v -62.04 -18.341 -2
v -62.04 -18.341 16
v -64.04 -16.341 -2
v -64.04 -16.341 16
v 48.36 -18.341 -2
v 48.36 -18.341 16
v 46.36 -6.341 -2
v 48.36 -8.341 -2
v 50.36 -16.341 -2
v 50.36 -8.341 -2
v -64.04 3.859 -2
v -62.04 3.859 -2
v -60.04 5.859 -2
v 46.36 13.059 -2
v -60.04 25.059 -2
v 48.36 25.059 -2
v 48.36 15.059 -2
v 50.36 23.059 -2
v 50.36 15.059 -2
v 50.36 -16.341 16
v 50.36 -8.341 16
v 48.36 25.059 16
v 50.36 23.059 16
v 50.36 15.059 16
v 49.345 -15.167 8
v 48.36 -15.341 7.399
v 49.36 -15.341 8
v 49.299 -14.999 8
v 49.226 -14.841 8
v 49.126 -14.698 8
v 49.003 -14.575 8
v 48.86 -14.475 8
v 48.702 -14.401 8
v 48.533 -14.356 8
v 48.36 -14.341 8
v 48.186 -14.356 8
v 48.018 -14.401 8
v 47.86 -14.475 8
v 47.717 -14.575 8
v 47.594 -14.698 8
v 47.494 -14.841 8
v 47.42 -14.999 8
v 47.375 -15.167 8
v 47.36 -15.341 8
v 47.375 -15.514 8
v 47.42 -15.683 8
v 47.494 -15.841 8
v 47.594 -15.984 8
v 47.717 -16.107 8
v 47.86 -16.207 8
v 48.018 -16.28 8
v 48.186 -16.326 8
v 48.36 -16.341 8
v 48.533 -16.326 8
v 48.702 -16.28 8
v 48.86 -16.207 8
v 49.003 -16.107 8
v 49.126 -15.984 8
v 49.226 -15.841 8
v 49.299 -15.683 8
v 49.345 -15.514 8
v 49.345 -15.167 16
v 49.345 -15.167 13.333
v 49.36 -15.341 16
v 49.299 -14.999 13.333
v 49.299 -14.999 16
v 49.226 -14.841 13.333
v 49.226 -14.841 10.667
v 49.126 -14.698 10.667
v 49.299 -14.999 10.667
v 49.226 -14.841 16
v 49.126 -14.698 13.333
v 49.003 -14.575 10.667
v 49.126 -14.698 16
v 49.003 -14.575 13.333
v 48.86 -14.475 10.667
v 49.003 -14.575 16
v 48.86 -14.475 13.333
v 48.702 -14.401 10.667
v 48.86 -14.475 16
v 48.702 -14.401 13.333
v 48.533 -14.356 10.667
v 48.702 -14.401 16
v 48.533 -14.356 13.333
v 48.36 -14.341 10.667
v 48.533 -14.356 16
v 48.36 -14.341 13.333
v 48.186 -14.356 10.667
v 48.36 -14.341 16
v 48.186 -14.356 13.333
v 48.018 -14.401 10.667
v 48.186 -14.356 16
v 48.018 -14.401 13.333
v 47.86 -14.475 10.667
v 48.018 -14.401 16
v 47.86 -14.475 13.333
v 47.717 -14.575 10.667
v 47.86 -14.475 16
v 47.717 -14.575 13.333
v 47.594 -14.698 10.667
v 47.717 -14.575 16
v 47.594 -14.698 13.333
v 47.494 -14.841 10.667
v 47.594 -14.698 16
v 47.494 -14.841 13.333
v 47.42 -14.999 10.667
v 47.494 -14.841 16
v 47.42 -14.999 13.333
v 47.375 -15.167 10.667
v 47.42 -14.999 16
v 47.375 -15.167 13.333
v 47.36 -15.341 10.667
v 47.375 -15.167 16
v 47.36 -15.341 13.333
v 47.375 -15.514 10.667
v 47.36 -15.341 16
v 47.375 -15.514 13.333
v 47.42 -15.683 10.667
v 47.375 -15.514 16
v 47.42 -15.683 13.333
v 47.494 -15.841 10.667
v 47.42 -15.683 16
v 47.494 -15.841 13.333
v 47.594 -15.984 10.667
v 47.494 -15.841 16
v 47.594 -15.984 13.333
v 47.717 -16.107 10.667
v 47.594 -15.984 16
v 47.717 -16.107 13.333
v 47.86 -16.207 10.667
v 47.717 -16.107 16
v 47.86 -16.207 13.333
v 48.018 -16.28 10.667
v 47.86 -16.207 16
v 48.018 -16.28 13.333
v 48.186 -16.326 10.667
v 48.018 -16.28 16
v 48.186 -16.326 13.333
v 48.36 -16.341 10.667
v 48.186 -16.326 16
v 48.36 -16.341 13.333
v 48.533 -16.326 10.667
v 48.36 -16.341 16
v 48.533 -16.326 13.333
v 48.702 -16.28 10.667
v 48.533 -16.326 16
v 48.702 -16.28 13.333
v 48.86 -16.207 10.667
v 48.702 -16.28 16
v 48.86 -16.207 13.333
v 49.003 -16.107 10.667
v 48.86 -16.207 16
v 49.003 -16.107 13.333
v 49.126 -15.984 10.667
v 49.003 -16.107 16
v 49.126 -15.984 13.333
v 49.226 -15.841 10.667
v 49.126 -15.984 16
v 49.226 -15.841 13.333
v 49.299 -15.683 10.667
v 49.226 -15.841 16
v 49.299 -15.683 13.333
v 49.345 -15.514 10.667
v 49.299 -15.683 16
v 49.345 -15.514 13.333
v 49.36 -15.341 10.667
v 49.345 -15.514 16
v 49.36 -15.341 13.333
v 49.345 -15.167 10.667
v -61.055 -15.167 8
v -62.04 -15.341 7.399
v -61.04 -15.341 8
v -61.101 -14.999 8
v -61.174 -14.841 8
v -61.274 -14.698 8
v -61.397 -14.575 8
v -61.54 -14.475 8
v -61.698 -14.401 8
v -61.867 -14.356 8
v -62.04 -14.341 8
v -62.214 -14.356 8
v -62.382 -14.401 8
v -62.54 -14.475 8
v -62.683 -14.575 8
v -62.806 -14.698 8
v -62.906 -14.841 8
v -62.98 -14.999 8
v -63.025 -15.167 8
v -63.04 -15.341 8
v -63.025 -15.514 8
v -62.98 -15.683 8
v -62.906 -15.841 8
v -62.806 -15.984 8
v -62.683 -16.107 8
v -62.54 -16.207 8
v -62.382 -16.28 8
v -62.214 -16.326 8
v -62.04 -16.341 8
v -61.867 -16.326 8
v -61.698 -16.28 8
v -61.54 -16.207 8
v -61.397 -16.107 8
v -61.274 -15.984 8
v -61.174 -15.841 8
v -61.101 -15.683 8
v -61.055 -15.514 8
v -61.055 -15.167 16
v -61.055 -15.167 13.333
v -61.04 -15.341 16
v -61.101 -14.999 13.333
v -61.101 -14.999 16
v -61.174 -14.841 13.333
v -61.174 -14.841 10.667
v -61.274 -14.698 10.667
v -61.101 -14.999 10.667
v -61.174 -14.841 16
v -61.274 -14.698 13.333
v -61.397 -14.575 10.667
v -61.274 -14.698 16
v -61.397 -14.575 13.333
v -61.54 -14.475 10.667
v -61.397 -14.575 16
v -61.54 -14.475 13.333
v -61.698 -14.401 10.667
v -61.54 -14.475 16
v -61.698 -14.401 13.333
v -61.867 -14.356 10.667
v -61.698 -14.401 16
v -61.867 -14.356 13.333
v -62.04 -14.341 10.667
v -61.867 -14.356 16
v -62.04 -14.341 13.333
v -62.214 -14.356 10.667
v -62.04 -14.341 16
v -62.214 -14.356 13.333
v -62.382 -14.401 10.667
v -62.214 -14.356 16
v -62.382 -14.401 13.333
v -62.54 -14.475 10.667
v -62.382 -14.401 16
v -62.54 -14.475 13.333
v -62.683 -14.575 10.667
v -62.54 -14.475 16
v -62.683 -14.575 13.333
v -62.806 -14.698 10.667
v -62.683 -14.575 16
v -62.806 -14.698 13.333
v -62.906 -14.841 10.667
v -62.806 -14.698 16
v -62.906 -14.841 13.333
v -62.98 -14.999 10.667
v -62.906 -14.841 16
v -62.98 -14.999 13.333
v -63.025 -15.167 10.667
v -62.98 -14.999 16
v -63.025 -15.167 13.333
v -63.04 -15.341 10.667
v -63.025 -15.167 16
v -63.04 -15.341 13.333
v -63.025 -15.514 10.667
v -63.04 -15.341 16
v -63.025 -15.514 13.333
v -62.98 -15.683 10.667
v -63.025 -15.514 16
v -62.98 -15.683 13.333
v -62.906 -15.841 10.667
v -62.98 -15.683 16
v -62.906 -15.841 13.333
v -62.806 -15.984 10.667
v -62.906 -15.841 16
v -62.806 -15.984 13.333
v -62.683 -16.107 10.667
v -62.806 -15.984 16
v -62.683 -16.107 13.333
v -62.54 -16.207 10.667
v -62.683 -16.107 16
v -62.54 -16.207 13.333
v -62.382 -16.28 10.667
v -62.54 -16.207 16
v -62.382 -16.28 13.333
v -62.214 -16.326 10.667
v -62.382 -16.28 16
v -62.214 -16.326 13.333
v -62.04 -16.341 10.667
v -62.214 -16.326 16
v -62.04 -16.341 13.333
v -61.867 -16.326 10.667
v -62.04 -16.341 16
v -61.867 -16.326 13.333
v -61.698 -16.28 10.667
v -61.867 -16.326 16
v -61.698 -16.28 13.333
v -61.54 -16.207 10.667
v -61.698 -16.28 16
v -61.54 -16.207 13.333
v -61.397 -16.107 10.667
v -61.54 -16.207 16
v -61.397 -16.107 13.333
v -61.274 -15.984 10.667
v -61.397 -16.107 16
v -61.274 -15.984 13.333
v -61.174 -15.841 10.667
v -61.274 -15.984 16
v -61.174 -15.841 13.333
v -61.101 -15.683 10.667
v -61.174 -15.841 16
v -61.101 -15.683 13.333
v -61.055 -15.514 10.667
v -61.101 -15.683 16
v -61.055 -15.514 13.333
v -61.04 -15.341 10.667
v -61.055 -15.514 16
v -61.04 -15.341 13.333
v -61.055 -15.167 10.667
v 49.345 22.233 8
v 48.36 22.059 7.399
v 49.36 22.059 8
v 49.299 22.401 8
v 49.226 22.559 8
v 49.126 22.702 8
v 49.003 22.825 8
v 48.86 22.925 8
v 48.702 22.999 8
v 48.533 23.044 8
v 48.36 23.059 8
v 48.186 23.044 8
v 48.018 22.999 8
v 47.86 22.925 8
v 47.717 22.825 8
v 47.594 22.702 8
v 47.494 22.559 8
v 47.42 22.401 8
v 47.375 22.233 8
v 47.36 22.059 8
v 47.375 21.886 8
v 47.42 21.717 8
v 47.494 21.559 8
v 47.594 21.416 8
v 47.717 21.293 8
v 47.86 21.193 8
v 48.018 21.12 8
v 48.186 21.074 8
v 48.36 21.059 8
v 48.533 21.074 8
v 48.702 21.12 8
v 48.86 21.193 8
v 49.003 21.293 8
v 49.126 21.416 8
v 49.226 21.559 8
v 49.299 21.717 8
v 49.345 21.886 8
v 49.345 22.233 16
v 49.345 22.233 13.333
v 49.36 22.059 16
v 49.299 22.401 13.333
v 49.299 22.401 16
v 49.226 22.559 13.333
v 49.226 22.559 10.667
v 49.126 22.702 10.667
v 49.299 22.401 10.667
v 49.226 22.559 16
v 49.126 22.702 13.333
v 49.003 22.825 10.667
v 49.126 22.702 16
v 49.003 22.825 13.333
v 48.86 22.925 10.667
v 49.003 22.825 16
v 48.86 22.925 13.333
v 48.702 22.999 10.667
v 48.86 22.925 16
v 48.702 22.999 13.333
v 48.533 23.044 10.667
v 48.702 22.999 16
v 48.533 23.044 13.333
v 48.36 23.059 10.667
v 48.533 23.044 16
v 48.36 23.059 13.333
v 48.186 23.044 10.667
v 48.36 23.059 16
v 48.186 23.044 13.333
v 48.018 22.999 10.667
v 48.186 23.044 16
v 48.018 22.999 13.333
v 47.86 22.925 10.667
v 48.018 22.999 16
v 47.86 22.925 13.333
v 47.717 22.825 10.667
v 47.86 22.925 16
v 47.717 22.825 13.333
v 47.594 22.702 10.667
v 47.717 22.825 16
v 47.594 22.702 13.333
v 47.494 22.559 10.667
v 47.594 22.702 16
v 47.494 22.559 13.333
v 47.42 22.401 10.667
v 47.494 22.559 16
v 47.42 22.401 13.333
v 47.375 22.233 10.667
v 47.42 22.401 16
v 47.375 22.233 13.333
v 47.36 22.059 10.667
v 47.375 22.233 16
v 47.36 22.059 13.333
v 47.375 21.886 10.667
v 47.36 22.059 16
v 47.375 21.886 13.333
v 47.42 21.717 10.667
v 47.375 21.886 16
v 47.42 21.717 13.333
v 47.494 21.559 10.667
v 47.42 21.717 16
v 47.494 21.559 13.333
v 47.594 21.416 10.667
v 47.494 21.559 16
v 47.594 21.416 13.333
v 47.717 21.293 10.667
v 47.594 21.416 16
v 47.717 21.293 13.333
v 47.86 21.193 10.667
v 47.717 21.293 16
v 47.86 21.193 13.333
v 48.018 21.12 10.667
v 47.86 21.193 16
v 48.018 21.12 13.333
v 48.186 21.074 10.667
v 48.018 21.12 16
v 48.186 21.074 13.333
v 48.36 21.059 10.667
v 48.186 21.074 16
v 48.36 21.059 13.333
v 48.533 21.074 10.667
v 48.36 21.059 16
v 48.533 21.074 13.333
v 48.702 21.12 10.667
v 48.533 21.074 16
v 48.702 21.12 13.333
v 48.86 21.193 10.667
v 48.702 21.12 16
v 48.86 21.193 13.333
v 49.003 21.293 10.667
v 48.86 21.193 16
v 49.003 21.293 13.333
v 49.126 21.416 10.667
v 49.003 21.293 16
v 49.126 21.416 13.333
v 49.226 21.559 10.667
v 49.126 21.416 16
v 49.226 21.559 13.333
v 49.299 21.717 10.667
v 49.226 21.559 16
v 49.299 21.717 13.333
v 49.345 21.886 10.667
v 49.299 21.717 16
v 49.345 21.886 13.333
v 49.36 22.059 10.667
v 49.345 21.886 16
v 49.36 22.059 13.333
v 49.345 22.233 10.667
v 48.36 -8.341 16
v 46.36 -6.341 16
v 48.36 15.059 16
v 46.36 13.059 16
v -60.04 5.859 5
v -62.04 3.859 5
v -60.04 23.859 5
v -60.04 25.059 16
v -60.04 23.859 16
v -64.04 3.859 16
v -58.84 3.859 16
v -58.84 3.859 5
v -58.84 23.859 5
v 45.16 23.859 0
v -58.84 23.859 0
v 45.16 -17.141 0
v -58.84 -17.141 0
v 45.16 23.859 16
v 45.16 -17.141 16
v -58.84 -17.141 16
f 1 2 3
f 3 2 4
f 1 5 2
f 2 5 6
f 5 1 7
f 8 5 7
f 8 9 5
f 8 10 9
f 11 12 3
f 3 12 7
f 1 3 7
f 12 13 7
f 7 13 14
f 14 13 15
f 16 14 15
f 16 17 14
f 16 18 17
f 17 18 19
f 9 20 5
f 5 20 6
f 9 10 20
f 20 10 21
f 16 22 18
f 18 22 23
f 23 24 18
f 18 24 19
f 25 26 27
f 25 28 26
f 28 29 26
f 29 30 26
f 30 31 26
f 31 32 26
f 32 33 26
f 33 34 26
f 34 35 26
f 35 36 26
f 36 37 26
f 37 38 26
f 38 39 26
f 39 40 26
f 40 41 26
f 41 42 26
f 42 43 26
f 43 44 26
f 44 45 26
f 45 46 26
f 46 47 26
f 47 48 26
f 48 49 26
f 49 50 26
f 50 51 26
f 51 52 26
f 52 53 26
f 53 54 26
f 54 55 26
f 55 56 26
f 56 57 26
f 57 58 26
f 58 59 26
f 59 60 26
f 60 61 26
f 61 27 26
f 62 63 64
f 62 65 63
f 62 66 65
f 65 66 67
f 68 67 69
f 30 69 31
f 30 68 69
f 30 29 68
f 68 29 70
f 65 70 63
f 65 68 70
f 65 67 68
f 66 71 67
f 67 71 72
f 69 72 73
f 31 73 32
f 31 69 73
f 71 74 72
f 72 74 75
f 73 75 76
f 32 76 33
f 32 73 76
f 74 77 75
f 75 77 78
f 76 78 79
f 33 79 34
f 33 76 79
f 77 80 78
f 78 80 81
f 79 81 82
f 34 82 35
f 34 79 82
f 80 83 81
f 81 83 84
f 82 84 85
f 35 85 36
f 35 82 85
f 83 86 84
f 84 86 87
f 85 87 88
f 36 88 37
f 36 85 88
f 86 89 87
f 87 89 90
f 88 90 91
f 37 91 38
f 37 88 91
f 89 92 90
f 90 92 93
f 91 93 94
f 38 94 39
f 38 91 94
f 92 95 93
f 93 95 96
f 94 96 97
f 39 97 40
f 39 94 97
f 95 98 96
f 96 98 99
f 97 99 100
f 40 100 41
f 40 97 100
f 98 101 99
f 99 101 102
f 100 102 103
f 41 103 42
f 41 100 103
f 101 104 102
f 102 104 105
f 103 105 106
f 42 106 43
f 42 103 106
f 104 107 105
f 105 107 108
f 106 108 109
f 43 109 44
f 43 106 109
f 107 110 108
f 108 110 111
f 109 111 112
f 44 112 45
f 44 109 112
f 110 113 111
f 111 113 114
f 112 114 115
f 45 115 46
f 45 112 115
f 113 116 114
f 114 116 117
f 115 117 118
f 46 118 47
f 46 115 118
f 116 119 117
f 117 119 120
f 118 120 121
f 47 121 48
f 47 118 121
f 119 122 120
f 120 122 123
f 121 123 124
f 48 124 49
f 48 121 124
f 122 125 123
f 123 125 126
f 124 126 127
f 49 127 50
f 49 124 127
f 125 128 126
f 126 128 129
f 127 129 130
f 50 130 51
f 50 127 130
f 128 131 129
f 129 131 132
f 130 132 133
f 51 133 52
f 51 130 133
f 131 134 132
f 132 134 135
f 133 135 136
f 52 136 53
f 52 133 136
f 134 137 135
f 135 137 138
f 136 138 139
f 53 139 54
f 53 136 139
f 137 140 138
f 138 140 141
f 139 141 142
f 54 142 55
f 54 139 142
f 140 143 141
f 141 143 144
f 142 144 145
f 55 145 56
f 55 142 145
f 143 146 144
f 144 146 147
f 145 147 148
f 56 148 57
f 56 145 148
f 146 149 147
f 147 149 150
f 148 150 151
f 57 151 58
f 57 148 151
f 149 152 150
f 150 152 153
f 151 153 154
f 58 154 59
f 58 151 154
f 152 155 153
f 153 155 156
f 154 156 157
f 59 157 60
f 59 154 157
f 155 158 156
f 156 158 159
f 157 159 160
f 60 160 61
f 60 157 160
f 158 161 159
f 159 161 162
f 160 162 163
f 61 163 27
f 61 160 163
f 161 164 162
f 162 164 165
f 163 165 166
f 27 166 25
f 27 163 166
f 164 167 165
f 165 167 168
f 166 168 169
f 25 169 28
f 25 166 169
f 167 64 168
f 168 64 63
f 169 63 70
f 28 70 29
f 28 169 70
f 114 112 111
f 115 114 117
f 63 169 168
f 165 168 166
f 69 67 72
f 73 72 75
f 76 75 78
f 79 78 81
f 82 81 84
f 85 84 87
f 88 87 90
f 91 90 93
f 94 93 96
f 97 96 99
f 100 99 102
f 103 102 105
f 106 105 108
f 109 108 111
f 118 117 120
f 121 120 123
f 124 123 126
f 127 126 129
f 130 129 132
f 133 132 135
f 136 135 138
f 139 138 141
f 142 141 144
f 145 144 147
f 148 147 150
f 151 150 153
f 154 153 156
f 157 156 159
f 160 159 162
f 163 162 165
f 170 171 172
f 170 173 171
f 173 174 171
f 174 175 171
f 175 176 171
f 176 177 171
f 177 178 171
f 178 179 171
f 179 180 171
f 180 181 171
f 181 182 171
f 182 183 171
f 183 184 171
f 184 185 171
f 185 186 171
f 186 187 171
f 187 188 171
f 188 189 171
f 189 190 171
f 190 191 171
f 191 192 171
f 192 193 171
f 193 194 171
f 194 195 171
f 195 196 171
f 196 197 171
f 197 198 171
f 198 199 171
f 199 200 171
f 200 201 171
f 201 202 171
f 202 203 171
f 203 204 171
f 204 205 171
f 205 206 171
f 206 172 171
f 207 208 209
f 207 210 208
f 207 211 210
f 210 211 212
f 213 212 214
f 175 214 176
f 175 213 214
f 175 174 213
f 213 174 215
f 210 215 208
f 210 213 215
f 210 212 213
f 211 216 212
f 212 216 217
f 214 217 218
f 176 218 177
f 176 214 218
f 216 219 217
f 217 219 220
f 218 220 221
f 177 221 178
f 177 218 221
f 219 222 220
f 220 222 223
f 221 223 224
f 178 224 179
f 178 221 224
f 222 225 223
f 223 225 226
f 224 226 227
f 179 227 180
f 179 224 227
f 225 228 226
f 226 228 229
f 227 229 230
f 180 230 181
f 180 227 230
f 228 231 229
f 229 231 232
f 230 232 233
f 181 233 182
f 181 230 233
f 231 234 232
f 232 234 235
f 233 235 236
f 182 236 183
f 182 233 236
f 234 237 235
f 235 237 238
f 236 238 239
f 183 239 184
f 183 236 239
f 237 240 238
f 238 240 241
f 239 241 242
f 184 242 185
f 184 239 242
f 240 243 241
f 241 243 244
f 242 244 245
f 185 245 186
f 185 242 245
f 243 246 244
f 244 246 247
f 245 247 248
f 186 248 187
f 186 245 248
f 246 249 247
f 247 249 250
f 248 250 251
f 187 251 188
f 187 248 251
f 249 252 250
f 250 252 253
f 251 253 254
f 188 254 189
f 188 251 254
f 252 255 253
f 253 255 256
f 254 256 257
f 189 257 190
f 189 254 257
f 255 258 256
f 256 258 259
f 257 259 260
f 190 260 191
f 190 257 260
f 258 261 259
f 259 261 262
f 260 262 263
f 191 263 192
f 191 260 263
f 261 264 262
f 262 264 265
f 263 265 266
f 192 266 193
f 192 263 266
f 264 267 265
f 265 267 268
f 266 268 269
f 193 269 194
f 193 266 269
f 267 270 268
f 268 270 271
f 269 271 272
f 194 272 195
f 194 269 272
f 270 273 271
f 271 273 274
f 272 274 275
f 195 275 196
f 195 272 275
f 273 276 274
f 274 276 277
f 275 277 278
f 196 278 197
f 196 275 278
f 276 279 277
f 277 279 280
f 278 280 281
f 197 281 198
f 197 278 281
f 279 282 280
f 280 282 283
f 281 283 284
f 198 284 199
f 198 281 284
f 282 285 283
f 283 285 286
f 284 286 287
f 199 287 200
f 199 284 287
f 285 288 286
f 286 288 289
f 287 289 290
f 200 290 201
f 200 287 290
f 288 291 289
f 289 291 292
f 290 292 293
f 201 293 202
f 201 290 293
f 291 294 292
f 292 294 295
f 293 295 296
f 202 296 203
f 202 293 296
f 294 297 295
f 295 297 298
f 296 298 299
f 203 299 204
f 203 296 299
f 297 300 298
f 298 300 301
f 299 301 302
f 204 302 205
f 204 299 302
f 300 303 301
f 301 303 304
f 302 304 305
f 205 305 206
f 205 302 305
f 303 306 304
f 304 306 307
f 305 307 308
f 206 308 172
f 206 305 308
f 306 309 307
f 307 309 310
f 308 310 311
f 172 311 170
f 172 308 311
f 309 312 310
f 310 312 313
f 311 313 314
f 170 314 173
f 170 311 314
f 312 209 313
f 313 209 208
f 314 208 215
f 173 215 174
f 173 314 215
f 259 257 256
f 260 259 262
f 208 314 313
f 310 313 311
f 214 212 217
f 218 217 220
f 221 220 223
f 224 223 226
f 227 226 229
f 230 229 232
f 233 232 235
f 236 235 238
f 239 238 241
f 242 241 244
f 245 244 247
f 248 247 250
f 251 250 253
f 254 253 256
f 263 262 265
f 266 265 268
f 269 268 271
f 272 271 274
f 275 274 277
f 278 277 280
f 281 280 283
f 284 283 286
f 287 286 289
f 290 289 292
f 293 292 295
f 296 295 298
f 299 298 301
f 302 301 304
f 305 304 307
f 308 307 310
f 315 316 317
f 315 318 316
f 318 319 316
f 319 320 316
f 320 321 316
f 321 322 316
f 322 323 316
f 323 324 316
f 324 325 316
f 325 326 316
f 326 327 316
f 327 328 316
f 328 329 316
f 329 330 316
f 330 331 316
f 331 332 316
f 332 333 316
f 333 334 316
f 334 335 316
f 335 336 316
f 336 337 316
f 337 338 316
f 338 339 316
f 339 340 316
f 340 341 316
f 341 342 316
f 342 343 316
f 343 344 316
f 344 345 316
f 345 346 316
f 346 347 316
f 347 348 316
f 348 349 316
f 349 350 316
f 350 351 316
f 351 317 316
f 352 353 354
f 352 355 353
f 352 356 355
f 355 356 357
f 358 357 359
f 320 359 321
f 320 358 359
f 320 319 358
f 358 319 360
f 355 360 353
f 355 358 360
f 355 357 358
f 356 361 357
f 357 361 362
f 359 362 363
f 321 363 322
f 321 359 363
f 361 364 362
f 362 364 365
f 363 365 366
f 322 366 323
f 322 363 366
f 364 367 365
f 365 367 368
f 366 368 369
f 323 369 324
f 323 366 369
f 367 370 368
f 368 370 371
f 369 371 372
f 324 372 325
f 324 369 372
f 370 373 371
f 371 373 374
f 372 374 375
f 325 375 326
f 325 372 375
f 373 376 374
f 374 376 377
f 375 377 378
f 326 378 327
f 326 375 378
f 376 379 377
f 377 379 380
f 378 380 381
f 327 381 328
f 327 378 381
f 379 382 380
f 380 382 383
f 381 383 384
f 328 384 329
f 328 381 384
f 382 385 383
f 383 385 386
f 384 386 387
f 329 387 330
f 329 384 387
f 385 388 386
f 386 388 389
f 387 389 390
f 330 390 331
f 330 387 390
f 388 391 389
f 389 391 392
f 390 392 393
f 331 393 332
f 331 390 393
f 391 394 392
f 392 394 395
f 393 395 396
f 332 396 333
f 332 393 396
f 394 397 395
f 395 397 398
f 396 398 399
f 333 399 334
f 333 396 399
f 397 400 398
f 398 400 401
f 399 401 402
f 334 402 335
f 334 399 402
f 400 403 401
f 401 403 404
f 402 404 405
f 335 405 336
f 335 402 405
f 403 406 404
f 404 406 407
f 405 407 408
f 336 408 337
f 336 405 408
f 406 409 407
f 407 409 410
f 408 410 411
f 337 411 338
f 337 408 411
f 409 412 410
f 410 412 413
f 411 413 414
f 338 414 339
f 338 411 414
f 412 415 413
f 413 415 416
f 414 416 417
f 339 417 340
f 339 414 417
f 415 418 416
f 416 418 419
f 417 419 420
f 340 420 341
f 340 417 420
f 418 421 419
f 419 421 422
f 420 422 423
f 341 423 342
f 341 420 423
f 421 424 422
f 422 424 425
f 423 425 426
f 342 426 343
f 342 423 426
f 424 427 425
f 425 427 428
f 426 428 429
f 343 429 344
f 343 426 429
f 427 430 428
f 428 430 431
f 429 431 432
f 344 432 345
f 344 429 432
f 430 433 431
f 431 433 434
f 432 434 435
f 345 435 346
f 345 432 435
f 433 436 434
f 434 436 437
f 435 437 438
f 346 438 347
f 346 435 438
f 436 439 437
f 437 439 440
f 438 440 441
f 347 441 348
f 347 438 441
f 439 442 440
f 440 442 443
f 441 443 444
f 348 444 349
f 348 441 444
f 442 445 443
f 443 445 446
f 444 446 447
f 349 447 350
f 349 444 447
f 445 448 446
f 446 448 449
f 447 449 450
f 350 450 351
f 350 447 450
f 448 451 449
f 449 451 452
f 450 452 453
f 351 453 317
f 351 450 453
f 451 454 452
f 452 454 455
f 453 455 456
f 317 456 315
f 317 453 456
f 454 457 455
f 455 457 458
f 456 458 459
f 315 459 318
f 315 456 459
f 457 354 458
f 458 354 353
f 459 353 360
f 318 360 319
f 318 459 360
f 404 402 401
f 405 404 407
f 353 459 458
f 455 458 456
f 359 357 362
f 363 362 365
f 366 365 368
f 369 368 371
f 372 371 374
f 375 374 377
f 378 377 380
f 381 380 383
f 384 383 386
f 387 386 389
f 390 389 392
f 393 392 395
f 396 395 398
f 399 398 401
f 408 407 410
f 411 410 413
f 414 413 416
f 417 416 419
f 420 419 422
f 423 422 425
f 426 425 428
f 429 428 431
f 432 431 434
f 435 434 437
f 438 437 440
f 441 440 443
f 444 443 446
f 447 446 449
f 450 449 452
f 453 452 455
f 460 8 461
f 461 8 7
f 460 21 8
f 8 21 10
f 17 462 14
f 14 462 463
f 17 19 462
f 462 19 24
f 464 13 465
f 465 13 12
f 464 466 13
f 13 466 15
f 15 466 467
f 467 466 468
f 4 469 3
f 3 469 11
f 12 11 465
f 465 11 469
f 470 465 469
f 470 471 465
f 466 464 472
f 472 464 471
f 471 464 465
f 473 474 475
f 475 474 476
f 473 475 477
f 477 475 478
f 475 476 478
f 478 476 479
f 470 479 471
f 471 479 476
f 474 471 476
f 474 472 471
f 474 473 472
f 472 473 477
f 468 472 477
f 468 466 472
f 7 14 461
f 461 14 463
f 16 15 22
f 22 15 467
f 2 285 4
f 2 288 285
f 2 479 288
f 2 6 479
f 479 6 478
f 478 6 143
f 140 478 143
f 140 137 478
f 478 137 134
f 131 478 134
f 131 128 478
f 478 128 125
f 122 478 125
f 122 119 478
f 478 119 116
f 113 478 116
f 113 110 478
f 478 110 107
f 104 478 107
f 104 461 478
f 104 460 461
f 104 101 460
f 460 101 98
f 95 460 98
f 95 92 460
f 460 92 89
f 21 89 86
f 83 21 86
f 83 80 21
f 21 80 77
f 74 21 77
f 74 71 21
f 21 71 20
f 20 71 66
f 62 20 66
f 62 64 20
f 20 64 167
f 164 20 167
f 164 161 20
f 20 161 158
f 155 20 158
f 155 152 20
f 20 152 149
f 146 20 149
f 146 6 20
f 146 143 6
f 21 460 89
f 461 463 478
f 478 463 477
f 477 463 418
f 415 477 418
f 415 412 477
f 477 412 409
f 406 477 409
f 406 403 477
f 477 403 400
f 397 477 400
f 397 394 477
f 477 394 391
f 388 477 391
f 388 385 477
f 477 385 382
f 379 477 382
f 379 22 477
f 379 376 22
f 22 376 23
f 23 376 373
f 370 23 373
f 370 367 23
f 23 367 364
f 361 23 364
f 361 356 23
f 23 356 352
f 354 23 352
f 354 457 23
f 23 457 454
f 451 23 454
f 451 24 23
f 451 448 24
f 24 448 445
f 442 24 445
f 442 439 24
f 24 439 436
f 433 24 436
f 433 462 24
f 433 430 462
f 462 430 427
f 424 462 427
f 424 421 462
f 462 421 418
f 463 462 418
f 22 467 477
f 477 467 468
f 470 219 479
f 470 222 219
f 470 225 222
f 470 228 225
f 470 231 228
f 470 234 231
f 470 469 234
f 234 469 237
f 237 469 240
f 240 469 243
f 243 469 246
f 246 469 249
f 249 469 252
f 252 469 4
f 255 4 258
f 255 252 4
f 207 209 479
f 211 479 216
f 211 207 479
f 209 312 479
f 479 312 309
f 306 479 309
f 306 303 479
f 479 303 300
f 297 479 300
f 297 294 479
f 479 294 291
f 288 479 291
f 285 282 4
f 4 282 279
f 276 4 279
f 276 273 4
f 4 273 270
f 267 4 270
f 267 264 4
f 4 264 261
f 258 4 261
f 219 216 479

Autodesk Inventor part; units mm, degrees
ref_plane "YZ Plane" through (0, 0, 0) normal (1, 0, 0) x (0, 1, 0)
ref_plane "XZ Plane" through (0, 0, 0) normal (0, 1, 0) x (-1, 0, 0)
ref_plane "XY Plane" through (0, 0, 0) normal (0, 0, 1) x (1, 0, 0)
sketch "Sketch1" plane through (0, 0, 0) normal (0, 0, 1) x (1, 0, 0)
  line L0 (-58.8402, 23.8593) -> (45.1598, 23.8593)
  line L1 (45.1598, 23.8593) -> (45.1598, -17.1407)
  line L2 (45.1598, -17.1407) -> (-58.8402, -17.1407)
  line L3 (-58.8402, -17.1407) -> (-58.8402, 23.8593)
  line L4 (-60.0402, 25.0593) -> (46.3598, 25.0593)
  line L5 (46.3598, 25.0593) -> (46.3598, -18.3407)
  line L6 (46.3598, -18.3407) -> (-60.0402, -18.3407)
  line L7 (-60.0402, -18.3407) -> (-60.0402, 25.0593)
  point P0 (0, 0)
  dimension "d0" = 104
  dimension "d1" = 41
  dimension "d2" = 1.2
  dimension "d3" = 1.2
  dimension "d4" = 1.2
  dimension "d5" = 1.2
extrude "Extrusion1" add sketch "Sketch1" along normal blind 16
sketch "Sketch2" plane through (0, 0, 0) normal (0, 0, -1) x (-1, 0, 0)
  line L0 (-46.3598, 25.0593) -> (60.0402, 25.0593)
  line L1 (60.0402, 25.0593) -> (60.0402, -18.3407)
  line L2 (60.0402, -18.3407) -> (-46.3598, -18.3407)
  line L3 (-46.3598, -18.3407) -> (-46.3598, 25.0593)
  point P0 (0, 0)
extrude "Extrusion2" add sketch "Sketch2" along normal blind 2
sketch "Sketch3" plane through (0, 0, 16) normal (0, 0, 1) x (1, 0, 0)
  line L0 (-60.0402, 25.0593) -> (-60.0402, -18.3407) projected
  line L1 (-58.8402, 23.8593) -> (-60.0402, 23.8593)
  line L2 (-60.0402, 23.8593) -> (-60.0402, 3.8593)
  line L3 (-60.0402, 3.8593) -> (-58.8402, 3.8593)
  line L4 (-58.8402, 3.8593) -> (-58.8402, 23.8593)
  point P0 (0, 0)
  dimension "d10" = 20
extrude "Extrusion3" cut sketch "Sketch3" against normal blind 11
sketch "Sketch4" plane through (0, 0, 16) normal (0, 0, 1) x (1, 0, 0)
  line L0 (-60.0402, -18.3407) -> (-64.0402, -18.3407)
  line L1 (-64.0402, -18.3407) -> (-64.0402, 3.8593)
  line L2 (-64.0402, 3.8593) -> (-60.0402, 3.8593)
  line L3 (-60.0402, 3.8593) -> (-60.0402, -18.3407)
  line L4 (-60.0402, 23.8593) -> (45.1598, 23.8593) projected
  line L5 (46.3598, 25.0593) -> (50.3598, 25.0593)
  line L6 (50.3598, 25.0593) -> (50.3598, 15.0593)
  line L7 (50.3598, 15.0593) -> (46.3598, 15.0593)
  line L8 (46.3598, 15.0593) -> (46.3598, 25.0593)
  line L9 (46.3598, -18.3407) -> (50.3598, -18.3407)
  line L10 (50.3598, -18.3407) -> (50.3598, -8.3407)
  line L11 (50.3598, -8.3407) -> (46.3598, -8.3407)
  line L12 (46.3598, -8.3407) -> (46.3598, -18.3407)
  point P0 (0, 0)
  dimension "d13" = 4
  dimension "d14" = 20
  dimension "d15" = 4
  dimension "d16" = 10
  dimension "d17" = 4
  dimension "d18" = 10
extrude "Extrusion4" add sketch "Sketch4" against normal blind 18
chamfer "Chamfer1" distance 2 angle 45 1 edges at (-60.0402, 3.8593, 1.5)
chamfer "Chamfer2" distance 2 angle 45 2 edges at (46.3598, 15.0593, 7) (46.3598, -8.3407, 7)
sketch "Sketch5" plane through (0, 0, 16) normal (0, 0, 1) x (1, 0, 0)
  line L0 (-60.0402, 25.0593) -> (50.3598, 25.0593) projected
  line L1 (50.3598, 25.0593) -> (50.3598, 15.0593) projected
  line L2 (50.3598, -18.3407) -> (50.3598, -8.3407) projected
  line L3 (50.3598, -18.3407) -> (-64.0402, -18.3407) projected
  line L4 (-64.0402, -18.3407) -> (-64.0402, 3.8593) projected
  point P0 (0, 0)
  point P1 (-62.0402, -15.3407)
  point P2 (48.3598, -15.3407)
  point P3 (48.3598, 22.0593)
  dimension "d27" = 3
  dimension "d28" = 2
  dimension "d29" = 2
  dimension "d30" = 3
  dimension "d31" = 3
  dimension "d32" = 2
  dimension "d33" = 110.4
  dimension "d34" = 37.4
hole "Hole1" at (-62.0402, -15.3407, 16) at (48.3598, -15.3407, 16) at (48.3598, 22.0593, 16) direction (0, 0, -1) diameter 2 depth 8 tip angle 118
chamfer "Chamfer3" distance 2 angle 45 3 edges at (50.3598, 25.0593, 7) (50.3598, -18.3407, 7) (-64.0402, -18.3407, 7)
properties part number "main body"
